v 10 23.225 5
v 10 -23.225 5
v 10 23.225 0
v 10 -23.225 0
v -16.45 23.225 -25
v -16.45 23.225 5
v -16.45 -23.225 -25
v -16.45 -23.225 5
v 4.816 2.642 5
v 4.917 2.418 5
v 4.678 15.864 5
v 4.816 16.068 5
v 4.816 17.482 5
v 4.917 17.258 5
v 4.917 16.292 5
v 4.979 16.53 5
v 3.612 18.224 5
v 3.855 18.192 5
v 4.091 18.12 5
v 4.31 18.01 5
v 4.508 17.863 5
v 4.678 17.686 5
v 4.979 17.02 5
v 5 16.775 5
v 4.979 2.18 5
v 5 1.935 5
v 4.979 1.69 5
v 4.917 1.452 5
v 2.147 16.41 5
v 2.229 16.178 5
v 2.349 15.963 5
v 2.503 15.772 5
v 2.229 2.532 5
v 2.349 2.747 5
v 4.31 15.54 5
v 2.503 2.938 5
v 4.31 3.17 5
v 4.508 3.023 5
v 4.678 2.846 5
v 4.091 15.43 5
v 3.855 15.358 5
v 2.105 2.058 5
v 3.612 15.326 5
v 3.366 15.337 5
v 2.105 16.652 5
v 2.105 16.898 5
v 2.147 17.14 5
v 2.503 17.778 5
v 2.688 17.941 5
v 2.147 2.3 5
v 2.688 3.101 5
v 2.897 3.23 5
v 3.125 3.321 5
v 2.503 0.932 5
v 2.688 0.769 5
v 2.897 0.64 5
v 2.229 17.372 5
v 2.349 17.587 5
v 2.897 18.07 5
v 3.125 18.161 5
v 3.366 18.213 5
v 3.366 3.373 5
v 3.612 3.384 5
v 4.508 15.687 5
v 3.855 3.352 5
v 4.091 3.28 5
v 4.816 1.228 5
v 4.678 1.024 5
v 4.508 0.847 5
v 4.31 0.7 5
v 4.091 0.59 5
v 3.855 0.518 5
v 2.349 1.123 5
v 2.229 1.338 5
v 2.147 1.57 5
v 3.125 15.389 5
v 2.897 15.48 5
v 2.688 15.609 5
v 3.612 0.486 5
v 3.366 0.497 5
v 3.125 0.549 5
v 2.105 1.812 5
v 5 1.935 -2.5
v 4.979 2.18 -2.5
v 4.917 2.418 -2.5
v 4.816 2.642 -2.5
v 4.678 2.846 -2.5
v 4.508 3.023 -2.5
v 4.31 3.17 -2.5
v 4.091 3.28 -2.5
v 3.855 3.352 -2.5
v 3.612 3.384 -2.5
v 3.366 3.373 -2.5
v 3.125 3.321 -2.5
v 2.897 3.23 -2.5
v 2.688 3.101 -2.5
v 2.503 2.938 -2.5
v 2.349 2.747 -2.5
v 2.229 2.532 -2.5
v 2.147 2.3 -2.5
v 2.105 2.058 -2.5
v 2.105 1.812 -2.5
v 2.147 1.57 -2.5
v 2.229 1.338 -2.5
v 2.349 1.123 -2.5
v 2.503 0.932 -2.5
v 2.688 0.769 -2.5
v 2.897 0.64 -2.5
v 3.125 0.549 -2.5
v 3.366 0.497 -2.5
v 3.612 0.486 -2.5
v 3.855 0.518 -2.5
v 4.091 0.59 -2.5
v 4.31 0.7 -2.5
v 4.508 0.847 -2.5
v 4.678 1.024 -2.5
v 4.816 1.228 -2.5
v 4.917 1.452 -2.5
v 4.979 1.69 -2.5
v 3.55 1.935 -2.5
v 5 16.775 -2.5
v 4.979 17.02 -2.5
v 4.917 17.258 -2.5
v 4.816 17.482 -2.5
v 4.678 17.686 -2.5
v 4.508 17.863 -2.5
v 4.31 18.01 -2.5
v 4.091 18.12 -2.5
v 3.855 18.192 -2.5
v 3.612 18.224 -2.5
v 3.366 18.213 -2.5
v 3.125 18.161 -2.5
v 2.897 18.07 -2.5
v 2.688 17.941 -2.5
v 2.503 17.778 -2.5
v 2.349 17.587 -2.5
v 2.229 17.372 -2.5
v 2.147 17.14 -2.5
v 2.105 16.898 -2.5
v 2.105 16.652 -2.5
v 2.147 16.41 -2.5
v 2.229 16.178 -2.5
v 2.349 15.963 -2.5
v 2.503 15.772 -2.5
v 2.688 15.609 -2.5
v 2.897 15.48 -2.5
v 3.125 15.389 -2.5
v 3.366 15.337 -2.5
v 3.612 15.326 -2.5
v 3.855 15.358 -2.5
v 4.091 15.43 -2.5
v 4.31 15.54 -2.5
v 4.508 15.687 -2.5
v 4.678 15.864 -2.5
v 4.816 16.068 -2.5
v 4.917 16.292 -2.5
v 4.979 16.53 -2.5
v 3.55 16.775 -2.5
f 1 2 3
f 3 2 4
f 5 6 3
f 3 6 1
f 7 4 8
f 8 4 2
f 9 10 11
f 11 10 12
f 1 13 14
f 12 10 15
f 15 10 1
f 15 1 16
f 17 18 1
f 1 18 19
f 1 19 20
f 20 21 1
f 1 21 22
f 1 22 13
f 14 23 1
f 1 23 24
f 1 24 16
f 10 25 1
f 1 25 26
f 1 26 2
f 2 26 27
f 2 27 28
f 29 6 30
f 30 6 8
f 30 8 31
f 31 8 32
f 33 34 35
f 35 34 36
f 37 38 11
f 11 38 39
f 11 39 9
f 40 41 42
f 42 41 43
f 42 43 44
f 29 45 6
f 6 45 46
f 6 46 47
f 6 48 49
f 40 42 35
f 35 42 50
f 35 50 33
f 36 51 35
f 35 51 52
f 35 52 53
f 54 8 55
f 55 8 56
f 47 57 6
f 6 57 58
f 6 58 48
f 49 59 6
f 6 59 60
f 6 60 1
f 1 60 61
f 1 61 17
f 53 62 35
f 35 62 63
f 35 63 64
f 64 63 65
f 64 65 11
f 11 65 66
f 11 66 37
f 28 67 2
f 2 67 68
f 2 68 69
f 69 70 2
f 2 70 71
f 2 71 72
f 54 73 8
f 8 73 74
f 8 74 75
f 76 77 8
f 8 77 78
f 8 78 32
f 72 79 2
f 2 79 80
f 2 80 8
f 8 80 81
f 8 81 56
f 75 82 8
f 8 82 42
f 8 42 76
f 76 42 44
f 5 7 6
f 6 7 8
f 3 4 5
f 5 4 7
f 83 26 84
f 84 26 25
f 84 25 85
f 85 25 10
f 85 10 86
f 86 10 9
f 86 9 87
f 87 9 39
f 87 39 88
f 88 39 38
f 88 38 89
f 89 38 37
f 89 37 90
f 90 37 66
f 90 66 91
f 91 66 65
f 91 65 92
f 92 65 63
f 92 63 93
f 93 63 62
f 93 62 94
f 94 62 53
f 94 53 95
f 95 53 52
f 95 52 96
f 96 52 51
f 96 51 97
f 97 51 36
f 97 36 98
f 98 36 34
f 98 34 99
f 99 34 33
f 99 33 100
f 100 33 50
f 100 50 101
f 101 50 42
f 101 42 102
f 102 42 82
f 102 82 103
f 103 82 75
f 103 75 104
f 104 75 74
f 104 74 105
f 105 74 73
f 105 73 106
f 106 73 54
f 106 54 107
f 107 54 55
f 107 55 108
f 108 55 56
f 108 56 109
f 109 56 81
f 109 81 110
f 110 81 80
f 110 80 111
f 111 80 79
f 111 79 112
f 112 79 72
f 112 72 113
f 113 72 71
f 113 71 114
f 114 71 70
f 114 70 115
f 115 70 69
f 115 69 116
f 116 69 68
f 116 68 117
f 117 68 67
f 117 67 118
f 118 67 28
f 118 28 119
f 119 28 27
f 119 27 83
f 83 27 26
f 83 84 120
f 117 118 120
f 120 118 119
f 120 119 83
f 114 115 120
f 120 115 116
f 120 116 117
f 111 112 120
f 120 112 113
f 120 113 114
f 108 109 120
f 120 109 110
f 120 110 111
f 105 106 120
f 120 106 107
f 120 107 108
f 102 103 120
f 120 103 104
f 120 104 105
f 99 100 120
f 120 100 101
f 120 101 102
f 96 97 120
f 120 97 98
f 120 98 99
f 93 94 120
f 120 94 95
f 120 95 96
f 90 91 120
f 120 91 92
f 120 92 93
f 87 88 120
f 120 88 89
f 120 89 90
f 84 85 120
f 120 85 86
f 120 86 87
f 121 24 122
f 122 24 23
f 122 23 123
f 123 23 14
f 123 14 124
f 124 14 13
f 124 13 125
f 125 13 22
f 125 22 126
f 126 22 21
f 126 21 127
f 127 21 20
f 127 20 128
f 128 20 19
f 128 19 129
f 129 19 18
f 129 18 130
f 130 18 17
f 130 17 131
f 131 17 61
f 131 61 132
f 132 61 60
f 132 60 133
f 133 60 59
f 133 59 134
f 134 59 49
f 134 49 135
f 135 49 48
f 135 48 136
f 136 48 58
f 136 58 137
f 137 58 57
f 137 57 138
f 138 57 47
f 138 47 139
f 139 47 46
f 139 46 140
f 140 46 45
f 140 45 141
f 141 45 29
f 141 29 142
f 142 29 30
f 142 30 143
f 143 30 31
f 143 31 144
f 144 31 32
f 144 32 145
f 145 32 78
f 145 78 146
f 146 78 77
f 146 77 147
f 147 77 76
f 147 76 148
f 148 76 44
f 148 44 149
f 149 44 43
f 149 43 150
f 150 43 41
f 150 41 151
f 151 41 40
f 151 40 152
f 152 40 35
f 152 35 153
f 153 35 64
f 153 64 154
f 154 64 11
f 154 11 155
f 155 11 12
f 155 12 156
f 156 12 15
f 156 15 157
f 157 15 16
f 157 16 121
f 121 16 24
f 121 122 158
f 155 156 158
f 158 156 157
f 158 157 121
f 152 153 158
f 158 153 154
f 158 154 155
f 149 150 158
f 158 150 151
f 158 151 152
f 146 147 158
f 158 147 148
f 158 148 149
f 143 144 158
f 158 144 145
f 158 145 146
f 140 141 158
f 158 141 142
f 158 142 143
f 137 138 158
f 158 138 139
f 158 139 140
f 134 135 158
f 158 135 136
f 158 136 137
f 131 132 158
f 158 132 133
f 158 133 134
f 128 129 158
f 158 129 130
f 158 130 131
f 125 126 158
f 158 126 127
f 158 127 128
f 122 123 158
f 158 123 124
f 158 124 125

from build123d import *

# Parameters (mm, degrees)
SKETCH1_W                       = 20
SKETCH1_H                       = 46.45
BOSS_EXTRUDE1_DEPTH             = 5
BOSS_EXTRUDE4_REACH             = 27.776
BOSS_EXTRUDE4_DIRECTION_2_REACH = 27.776
SKETCH6_R                       = 1.45
CUT_EXTRUDE2_DEPTH              = 7.5


with BuildPart() as part:
    # Sketch1 → Boss-Extrude1 (new body)
    with BuildSketch(Plane.XY):
        Rectangle(SKETCH1_W, SKETCH1_H)
    extrude(amount=BOSS_EXTRUDE1_DEPTH)

    # Boss-Extrude4: up to this face of the body (flat: up to its plane)
    boss_extrude4_end = Plane(part.part.faces().sort_by_distance((0, 23.225, 2.5))[0])
    # Sketch4 → Boss-Extrude4 (add, up to the picked face)
    with BuildSketch(Plane(origin=(0, 0, 0), x_dir=(1, 0, 0), z_dir=(0, 1, 0)), mode=Mode.PRIVATE) as boss_extrude4_sk1:
        Polygon((3.55, -5), (-16.45, -5), (-16.45, 25), (10, 0), (10, -5), align=None)
    boss_extrude4_tool1 = split(extrude(boss_extrude4_sk1.sketch, amount=BOSS_EXTRUDE4_REACH, mode=Mode.PRIVATE), bisect_by=boss_extrude4_end, keep=Keep.BOTH, mode=Mode.PRIVATE)
    add(boss_extrude4_tool1.solids().sort_by(Axis((-6.37381, 0, -5.238095), (0, 1, 0)))[0])

    # Boss-Extrude4 direction 2: up to this face of the body (flat: up to its plane)
    boss_extrude4_direction_2_end = Plane(part.part.faces().sort_by_distance((0, -23.225, 2.5))[0])
    # Sketch4 → Boss-Extrude4 direction 2 (add, up to the picked face)
    with BuildSketch(Plane(origin=(0, 0, 0), x_dir=(1, 0, 0), z_dir=(0, 1, 0)), mode=Mode.PRIVATE) as boss_extrude4_direction_2_sk1:
        Polygon((3.55, -5), (-16.45, -5), (-16.45, 25), (10, 0), (10, -5), align=None)
    boss_extrude4_direction_2_tool1 = split(extrude(boss_extrude4_direction_2_sk1.sketch, amount=-BOSS_EXTRUDE4_DIRECTION_2_REACH, mode=Mode.PRIVATE), bisect_by=boss_extrude4_direction_2_end, keep=Keep.BOTH, mode=Mode.PRIVATE)
    add(boss_extrude4_direction_2_tool1.solids().sort_by(Axis((-6.37381, 0, -5.238095), (0, -1, 0)))[0])

    # Sketch6 → Cut-Extrude2 (cut)
    with BuildSketch(Plane.XY.offset(5)):
        with Locations((3.55, 16.775)):
            Circle(SKETCH6_R)
        with Locations((3.55, 1.935)):
            Circle(SKETCH6_R)
    extrude(amount=-CUT_EXTRUDE2_DEPTH, mode=Mode.SUBTRACT)


solid = part.part
